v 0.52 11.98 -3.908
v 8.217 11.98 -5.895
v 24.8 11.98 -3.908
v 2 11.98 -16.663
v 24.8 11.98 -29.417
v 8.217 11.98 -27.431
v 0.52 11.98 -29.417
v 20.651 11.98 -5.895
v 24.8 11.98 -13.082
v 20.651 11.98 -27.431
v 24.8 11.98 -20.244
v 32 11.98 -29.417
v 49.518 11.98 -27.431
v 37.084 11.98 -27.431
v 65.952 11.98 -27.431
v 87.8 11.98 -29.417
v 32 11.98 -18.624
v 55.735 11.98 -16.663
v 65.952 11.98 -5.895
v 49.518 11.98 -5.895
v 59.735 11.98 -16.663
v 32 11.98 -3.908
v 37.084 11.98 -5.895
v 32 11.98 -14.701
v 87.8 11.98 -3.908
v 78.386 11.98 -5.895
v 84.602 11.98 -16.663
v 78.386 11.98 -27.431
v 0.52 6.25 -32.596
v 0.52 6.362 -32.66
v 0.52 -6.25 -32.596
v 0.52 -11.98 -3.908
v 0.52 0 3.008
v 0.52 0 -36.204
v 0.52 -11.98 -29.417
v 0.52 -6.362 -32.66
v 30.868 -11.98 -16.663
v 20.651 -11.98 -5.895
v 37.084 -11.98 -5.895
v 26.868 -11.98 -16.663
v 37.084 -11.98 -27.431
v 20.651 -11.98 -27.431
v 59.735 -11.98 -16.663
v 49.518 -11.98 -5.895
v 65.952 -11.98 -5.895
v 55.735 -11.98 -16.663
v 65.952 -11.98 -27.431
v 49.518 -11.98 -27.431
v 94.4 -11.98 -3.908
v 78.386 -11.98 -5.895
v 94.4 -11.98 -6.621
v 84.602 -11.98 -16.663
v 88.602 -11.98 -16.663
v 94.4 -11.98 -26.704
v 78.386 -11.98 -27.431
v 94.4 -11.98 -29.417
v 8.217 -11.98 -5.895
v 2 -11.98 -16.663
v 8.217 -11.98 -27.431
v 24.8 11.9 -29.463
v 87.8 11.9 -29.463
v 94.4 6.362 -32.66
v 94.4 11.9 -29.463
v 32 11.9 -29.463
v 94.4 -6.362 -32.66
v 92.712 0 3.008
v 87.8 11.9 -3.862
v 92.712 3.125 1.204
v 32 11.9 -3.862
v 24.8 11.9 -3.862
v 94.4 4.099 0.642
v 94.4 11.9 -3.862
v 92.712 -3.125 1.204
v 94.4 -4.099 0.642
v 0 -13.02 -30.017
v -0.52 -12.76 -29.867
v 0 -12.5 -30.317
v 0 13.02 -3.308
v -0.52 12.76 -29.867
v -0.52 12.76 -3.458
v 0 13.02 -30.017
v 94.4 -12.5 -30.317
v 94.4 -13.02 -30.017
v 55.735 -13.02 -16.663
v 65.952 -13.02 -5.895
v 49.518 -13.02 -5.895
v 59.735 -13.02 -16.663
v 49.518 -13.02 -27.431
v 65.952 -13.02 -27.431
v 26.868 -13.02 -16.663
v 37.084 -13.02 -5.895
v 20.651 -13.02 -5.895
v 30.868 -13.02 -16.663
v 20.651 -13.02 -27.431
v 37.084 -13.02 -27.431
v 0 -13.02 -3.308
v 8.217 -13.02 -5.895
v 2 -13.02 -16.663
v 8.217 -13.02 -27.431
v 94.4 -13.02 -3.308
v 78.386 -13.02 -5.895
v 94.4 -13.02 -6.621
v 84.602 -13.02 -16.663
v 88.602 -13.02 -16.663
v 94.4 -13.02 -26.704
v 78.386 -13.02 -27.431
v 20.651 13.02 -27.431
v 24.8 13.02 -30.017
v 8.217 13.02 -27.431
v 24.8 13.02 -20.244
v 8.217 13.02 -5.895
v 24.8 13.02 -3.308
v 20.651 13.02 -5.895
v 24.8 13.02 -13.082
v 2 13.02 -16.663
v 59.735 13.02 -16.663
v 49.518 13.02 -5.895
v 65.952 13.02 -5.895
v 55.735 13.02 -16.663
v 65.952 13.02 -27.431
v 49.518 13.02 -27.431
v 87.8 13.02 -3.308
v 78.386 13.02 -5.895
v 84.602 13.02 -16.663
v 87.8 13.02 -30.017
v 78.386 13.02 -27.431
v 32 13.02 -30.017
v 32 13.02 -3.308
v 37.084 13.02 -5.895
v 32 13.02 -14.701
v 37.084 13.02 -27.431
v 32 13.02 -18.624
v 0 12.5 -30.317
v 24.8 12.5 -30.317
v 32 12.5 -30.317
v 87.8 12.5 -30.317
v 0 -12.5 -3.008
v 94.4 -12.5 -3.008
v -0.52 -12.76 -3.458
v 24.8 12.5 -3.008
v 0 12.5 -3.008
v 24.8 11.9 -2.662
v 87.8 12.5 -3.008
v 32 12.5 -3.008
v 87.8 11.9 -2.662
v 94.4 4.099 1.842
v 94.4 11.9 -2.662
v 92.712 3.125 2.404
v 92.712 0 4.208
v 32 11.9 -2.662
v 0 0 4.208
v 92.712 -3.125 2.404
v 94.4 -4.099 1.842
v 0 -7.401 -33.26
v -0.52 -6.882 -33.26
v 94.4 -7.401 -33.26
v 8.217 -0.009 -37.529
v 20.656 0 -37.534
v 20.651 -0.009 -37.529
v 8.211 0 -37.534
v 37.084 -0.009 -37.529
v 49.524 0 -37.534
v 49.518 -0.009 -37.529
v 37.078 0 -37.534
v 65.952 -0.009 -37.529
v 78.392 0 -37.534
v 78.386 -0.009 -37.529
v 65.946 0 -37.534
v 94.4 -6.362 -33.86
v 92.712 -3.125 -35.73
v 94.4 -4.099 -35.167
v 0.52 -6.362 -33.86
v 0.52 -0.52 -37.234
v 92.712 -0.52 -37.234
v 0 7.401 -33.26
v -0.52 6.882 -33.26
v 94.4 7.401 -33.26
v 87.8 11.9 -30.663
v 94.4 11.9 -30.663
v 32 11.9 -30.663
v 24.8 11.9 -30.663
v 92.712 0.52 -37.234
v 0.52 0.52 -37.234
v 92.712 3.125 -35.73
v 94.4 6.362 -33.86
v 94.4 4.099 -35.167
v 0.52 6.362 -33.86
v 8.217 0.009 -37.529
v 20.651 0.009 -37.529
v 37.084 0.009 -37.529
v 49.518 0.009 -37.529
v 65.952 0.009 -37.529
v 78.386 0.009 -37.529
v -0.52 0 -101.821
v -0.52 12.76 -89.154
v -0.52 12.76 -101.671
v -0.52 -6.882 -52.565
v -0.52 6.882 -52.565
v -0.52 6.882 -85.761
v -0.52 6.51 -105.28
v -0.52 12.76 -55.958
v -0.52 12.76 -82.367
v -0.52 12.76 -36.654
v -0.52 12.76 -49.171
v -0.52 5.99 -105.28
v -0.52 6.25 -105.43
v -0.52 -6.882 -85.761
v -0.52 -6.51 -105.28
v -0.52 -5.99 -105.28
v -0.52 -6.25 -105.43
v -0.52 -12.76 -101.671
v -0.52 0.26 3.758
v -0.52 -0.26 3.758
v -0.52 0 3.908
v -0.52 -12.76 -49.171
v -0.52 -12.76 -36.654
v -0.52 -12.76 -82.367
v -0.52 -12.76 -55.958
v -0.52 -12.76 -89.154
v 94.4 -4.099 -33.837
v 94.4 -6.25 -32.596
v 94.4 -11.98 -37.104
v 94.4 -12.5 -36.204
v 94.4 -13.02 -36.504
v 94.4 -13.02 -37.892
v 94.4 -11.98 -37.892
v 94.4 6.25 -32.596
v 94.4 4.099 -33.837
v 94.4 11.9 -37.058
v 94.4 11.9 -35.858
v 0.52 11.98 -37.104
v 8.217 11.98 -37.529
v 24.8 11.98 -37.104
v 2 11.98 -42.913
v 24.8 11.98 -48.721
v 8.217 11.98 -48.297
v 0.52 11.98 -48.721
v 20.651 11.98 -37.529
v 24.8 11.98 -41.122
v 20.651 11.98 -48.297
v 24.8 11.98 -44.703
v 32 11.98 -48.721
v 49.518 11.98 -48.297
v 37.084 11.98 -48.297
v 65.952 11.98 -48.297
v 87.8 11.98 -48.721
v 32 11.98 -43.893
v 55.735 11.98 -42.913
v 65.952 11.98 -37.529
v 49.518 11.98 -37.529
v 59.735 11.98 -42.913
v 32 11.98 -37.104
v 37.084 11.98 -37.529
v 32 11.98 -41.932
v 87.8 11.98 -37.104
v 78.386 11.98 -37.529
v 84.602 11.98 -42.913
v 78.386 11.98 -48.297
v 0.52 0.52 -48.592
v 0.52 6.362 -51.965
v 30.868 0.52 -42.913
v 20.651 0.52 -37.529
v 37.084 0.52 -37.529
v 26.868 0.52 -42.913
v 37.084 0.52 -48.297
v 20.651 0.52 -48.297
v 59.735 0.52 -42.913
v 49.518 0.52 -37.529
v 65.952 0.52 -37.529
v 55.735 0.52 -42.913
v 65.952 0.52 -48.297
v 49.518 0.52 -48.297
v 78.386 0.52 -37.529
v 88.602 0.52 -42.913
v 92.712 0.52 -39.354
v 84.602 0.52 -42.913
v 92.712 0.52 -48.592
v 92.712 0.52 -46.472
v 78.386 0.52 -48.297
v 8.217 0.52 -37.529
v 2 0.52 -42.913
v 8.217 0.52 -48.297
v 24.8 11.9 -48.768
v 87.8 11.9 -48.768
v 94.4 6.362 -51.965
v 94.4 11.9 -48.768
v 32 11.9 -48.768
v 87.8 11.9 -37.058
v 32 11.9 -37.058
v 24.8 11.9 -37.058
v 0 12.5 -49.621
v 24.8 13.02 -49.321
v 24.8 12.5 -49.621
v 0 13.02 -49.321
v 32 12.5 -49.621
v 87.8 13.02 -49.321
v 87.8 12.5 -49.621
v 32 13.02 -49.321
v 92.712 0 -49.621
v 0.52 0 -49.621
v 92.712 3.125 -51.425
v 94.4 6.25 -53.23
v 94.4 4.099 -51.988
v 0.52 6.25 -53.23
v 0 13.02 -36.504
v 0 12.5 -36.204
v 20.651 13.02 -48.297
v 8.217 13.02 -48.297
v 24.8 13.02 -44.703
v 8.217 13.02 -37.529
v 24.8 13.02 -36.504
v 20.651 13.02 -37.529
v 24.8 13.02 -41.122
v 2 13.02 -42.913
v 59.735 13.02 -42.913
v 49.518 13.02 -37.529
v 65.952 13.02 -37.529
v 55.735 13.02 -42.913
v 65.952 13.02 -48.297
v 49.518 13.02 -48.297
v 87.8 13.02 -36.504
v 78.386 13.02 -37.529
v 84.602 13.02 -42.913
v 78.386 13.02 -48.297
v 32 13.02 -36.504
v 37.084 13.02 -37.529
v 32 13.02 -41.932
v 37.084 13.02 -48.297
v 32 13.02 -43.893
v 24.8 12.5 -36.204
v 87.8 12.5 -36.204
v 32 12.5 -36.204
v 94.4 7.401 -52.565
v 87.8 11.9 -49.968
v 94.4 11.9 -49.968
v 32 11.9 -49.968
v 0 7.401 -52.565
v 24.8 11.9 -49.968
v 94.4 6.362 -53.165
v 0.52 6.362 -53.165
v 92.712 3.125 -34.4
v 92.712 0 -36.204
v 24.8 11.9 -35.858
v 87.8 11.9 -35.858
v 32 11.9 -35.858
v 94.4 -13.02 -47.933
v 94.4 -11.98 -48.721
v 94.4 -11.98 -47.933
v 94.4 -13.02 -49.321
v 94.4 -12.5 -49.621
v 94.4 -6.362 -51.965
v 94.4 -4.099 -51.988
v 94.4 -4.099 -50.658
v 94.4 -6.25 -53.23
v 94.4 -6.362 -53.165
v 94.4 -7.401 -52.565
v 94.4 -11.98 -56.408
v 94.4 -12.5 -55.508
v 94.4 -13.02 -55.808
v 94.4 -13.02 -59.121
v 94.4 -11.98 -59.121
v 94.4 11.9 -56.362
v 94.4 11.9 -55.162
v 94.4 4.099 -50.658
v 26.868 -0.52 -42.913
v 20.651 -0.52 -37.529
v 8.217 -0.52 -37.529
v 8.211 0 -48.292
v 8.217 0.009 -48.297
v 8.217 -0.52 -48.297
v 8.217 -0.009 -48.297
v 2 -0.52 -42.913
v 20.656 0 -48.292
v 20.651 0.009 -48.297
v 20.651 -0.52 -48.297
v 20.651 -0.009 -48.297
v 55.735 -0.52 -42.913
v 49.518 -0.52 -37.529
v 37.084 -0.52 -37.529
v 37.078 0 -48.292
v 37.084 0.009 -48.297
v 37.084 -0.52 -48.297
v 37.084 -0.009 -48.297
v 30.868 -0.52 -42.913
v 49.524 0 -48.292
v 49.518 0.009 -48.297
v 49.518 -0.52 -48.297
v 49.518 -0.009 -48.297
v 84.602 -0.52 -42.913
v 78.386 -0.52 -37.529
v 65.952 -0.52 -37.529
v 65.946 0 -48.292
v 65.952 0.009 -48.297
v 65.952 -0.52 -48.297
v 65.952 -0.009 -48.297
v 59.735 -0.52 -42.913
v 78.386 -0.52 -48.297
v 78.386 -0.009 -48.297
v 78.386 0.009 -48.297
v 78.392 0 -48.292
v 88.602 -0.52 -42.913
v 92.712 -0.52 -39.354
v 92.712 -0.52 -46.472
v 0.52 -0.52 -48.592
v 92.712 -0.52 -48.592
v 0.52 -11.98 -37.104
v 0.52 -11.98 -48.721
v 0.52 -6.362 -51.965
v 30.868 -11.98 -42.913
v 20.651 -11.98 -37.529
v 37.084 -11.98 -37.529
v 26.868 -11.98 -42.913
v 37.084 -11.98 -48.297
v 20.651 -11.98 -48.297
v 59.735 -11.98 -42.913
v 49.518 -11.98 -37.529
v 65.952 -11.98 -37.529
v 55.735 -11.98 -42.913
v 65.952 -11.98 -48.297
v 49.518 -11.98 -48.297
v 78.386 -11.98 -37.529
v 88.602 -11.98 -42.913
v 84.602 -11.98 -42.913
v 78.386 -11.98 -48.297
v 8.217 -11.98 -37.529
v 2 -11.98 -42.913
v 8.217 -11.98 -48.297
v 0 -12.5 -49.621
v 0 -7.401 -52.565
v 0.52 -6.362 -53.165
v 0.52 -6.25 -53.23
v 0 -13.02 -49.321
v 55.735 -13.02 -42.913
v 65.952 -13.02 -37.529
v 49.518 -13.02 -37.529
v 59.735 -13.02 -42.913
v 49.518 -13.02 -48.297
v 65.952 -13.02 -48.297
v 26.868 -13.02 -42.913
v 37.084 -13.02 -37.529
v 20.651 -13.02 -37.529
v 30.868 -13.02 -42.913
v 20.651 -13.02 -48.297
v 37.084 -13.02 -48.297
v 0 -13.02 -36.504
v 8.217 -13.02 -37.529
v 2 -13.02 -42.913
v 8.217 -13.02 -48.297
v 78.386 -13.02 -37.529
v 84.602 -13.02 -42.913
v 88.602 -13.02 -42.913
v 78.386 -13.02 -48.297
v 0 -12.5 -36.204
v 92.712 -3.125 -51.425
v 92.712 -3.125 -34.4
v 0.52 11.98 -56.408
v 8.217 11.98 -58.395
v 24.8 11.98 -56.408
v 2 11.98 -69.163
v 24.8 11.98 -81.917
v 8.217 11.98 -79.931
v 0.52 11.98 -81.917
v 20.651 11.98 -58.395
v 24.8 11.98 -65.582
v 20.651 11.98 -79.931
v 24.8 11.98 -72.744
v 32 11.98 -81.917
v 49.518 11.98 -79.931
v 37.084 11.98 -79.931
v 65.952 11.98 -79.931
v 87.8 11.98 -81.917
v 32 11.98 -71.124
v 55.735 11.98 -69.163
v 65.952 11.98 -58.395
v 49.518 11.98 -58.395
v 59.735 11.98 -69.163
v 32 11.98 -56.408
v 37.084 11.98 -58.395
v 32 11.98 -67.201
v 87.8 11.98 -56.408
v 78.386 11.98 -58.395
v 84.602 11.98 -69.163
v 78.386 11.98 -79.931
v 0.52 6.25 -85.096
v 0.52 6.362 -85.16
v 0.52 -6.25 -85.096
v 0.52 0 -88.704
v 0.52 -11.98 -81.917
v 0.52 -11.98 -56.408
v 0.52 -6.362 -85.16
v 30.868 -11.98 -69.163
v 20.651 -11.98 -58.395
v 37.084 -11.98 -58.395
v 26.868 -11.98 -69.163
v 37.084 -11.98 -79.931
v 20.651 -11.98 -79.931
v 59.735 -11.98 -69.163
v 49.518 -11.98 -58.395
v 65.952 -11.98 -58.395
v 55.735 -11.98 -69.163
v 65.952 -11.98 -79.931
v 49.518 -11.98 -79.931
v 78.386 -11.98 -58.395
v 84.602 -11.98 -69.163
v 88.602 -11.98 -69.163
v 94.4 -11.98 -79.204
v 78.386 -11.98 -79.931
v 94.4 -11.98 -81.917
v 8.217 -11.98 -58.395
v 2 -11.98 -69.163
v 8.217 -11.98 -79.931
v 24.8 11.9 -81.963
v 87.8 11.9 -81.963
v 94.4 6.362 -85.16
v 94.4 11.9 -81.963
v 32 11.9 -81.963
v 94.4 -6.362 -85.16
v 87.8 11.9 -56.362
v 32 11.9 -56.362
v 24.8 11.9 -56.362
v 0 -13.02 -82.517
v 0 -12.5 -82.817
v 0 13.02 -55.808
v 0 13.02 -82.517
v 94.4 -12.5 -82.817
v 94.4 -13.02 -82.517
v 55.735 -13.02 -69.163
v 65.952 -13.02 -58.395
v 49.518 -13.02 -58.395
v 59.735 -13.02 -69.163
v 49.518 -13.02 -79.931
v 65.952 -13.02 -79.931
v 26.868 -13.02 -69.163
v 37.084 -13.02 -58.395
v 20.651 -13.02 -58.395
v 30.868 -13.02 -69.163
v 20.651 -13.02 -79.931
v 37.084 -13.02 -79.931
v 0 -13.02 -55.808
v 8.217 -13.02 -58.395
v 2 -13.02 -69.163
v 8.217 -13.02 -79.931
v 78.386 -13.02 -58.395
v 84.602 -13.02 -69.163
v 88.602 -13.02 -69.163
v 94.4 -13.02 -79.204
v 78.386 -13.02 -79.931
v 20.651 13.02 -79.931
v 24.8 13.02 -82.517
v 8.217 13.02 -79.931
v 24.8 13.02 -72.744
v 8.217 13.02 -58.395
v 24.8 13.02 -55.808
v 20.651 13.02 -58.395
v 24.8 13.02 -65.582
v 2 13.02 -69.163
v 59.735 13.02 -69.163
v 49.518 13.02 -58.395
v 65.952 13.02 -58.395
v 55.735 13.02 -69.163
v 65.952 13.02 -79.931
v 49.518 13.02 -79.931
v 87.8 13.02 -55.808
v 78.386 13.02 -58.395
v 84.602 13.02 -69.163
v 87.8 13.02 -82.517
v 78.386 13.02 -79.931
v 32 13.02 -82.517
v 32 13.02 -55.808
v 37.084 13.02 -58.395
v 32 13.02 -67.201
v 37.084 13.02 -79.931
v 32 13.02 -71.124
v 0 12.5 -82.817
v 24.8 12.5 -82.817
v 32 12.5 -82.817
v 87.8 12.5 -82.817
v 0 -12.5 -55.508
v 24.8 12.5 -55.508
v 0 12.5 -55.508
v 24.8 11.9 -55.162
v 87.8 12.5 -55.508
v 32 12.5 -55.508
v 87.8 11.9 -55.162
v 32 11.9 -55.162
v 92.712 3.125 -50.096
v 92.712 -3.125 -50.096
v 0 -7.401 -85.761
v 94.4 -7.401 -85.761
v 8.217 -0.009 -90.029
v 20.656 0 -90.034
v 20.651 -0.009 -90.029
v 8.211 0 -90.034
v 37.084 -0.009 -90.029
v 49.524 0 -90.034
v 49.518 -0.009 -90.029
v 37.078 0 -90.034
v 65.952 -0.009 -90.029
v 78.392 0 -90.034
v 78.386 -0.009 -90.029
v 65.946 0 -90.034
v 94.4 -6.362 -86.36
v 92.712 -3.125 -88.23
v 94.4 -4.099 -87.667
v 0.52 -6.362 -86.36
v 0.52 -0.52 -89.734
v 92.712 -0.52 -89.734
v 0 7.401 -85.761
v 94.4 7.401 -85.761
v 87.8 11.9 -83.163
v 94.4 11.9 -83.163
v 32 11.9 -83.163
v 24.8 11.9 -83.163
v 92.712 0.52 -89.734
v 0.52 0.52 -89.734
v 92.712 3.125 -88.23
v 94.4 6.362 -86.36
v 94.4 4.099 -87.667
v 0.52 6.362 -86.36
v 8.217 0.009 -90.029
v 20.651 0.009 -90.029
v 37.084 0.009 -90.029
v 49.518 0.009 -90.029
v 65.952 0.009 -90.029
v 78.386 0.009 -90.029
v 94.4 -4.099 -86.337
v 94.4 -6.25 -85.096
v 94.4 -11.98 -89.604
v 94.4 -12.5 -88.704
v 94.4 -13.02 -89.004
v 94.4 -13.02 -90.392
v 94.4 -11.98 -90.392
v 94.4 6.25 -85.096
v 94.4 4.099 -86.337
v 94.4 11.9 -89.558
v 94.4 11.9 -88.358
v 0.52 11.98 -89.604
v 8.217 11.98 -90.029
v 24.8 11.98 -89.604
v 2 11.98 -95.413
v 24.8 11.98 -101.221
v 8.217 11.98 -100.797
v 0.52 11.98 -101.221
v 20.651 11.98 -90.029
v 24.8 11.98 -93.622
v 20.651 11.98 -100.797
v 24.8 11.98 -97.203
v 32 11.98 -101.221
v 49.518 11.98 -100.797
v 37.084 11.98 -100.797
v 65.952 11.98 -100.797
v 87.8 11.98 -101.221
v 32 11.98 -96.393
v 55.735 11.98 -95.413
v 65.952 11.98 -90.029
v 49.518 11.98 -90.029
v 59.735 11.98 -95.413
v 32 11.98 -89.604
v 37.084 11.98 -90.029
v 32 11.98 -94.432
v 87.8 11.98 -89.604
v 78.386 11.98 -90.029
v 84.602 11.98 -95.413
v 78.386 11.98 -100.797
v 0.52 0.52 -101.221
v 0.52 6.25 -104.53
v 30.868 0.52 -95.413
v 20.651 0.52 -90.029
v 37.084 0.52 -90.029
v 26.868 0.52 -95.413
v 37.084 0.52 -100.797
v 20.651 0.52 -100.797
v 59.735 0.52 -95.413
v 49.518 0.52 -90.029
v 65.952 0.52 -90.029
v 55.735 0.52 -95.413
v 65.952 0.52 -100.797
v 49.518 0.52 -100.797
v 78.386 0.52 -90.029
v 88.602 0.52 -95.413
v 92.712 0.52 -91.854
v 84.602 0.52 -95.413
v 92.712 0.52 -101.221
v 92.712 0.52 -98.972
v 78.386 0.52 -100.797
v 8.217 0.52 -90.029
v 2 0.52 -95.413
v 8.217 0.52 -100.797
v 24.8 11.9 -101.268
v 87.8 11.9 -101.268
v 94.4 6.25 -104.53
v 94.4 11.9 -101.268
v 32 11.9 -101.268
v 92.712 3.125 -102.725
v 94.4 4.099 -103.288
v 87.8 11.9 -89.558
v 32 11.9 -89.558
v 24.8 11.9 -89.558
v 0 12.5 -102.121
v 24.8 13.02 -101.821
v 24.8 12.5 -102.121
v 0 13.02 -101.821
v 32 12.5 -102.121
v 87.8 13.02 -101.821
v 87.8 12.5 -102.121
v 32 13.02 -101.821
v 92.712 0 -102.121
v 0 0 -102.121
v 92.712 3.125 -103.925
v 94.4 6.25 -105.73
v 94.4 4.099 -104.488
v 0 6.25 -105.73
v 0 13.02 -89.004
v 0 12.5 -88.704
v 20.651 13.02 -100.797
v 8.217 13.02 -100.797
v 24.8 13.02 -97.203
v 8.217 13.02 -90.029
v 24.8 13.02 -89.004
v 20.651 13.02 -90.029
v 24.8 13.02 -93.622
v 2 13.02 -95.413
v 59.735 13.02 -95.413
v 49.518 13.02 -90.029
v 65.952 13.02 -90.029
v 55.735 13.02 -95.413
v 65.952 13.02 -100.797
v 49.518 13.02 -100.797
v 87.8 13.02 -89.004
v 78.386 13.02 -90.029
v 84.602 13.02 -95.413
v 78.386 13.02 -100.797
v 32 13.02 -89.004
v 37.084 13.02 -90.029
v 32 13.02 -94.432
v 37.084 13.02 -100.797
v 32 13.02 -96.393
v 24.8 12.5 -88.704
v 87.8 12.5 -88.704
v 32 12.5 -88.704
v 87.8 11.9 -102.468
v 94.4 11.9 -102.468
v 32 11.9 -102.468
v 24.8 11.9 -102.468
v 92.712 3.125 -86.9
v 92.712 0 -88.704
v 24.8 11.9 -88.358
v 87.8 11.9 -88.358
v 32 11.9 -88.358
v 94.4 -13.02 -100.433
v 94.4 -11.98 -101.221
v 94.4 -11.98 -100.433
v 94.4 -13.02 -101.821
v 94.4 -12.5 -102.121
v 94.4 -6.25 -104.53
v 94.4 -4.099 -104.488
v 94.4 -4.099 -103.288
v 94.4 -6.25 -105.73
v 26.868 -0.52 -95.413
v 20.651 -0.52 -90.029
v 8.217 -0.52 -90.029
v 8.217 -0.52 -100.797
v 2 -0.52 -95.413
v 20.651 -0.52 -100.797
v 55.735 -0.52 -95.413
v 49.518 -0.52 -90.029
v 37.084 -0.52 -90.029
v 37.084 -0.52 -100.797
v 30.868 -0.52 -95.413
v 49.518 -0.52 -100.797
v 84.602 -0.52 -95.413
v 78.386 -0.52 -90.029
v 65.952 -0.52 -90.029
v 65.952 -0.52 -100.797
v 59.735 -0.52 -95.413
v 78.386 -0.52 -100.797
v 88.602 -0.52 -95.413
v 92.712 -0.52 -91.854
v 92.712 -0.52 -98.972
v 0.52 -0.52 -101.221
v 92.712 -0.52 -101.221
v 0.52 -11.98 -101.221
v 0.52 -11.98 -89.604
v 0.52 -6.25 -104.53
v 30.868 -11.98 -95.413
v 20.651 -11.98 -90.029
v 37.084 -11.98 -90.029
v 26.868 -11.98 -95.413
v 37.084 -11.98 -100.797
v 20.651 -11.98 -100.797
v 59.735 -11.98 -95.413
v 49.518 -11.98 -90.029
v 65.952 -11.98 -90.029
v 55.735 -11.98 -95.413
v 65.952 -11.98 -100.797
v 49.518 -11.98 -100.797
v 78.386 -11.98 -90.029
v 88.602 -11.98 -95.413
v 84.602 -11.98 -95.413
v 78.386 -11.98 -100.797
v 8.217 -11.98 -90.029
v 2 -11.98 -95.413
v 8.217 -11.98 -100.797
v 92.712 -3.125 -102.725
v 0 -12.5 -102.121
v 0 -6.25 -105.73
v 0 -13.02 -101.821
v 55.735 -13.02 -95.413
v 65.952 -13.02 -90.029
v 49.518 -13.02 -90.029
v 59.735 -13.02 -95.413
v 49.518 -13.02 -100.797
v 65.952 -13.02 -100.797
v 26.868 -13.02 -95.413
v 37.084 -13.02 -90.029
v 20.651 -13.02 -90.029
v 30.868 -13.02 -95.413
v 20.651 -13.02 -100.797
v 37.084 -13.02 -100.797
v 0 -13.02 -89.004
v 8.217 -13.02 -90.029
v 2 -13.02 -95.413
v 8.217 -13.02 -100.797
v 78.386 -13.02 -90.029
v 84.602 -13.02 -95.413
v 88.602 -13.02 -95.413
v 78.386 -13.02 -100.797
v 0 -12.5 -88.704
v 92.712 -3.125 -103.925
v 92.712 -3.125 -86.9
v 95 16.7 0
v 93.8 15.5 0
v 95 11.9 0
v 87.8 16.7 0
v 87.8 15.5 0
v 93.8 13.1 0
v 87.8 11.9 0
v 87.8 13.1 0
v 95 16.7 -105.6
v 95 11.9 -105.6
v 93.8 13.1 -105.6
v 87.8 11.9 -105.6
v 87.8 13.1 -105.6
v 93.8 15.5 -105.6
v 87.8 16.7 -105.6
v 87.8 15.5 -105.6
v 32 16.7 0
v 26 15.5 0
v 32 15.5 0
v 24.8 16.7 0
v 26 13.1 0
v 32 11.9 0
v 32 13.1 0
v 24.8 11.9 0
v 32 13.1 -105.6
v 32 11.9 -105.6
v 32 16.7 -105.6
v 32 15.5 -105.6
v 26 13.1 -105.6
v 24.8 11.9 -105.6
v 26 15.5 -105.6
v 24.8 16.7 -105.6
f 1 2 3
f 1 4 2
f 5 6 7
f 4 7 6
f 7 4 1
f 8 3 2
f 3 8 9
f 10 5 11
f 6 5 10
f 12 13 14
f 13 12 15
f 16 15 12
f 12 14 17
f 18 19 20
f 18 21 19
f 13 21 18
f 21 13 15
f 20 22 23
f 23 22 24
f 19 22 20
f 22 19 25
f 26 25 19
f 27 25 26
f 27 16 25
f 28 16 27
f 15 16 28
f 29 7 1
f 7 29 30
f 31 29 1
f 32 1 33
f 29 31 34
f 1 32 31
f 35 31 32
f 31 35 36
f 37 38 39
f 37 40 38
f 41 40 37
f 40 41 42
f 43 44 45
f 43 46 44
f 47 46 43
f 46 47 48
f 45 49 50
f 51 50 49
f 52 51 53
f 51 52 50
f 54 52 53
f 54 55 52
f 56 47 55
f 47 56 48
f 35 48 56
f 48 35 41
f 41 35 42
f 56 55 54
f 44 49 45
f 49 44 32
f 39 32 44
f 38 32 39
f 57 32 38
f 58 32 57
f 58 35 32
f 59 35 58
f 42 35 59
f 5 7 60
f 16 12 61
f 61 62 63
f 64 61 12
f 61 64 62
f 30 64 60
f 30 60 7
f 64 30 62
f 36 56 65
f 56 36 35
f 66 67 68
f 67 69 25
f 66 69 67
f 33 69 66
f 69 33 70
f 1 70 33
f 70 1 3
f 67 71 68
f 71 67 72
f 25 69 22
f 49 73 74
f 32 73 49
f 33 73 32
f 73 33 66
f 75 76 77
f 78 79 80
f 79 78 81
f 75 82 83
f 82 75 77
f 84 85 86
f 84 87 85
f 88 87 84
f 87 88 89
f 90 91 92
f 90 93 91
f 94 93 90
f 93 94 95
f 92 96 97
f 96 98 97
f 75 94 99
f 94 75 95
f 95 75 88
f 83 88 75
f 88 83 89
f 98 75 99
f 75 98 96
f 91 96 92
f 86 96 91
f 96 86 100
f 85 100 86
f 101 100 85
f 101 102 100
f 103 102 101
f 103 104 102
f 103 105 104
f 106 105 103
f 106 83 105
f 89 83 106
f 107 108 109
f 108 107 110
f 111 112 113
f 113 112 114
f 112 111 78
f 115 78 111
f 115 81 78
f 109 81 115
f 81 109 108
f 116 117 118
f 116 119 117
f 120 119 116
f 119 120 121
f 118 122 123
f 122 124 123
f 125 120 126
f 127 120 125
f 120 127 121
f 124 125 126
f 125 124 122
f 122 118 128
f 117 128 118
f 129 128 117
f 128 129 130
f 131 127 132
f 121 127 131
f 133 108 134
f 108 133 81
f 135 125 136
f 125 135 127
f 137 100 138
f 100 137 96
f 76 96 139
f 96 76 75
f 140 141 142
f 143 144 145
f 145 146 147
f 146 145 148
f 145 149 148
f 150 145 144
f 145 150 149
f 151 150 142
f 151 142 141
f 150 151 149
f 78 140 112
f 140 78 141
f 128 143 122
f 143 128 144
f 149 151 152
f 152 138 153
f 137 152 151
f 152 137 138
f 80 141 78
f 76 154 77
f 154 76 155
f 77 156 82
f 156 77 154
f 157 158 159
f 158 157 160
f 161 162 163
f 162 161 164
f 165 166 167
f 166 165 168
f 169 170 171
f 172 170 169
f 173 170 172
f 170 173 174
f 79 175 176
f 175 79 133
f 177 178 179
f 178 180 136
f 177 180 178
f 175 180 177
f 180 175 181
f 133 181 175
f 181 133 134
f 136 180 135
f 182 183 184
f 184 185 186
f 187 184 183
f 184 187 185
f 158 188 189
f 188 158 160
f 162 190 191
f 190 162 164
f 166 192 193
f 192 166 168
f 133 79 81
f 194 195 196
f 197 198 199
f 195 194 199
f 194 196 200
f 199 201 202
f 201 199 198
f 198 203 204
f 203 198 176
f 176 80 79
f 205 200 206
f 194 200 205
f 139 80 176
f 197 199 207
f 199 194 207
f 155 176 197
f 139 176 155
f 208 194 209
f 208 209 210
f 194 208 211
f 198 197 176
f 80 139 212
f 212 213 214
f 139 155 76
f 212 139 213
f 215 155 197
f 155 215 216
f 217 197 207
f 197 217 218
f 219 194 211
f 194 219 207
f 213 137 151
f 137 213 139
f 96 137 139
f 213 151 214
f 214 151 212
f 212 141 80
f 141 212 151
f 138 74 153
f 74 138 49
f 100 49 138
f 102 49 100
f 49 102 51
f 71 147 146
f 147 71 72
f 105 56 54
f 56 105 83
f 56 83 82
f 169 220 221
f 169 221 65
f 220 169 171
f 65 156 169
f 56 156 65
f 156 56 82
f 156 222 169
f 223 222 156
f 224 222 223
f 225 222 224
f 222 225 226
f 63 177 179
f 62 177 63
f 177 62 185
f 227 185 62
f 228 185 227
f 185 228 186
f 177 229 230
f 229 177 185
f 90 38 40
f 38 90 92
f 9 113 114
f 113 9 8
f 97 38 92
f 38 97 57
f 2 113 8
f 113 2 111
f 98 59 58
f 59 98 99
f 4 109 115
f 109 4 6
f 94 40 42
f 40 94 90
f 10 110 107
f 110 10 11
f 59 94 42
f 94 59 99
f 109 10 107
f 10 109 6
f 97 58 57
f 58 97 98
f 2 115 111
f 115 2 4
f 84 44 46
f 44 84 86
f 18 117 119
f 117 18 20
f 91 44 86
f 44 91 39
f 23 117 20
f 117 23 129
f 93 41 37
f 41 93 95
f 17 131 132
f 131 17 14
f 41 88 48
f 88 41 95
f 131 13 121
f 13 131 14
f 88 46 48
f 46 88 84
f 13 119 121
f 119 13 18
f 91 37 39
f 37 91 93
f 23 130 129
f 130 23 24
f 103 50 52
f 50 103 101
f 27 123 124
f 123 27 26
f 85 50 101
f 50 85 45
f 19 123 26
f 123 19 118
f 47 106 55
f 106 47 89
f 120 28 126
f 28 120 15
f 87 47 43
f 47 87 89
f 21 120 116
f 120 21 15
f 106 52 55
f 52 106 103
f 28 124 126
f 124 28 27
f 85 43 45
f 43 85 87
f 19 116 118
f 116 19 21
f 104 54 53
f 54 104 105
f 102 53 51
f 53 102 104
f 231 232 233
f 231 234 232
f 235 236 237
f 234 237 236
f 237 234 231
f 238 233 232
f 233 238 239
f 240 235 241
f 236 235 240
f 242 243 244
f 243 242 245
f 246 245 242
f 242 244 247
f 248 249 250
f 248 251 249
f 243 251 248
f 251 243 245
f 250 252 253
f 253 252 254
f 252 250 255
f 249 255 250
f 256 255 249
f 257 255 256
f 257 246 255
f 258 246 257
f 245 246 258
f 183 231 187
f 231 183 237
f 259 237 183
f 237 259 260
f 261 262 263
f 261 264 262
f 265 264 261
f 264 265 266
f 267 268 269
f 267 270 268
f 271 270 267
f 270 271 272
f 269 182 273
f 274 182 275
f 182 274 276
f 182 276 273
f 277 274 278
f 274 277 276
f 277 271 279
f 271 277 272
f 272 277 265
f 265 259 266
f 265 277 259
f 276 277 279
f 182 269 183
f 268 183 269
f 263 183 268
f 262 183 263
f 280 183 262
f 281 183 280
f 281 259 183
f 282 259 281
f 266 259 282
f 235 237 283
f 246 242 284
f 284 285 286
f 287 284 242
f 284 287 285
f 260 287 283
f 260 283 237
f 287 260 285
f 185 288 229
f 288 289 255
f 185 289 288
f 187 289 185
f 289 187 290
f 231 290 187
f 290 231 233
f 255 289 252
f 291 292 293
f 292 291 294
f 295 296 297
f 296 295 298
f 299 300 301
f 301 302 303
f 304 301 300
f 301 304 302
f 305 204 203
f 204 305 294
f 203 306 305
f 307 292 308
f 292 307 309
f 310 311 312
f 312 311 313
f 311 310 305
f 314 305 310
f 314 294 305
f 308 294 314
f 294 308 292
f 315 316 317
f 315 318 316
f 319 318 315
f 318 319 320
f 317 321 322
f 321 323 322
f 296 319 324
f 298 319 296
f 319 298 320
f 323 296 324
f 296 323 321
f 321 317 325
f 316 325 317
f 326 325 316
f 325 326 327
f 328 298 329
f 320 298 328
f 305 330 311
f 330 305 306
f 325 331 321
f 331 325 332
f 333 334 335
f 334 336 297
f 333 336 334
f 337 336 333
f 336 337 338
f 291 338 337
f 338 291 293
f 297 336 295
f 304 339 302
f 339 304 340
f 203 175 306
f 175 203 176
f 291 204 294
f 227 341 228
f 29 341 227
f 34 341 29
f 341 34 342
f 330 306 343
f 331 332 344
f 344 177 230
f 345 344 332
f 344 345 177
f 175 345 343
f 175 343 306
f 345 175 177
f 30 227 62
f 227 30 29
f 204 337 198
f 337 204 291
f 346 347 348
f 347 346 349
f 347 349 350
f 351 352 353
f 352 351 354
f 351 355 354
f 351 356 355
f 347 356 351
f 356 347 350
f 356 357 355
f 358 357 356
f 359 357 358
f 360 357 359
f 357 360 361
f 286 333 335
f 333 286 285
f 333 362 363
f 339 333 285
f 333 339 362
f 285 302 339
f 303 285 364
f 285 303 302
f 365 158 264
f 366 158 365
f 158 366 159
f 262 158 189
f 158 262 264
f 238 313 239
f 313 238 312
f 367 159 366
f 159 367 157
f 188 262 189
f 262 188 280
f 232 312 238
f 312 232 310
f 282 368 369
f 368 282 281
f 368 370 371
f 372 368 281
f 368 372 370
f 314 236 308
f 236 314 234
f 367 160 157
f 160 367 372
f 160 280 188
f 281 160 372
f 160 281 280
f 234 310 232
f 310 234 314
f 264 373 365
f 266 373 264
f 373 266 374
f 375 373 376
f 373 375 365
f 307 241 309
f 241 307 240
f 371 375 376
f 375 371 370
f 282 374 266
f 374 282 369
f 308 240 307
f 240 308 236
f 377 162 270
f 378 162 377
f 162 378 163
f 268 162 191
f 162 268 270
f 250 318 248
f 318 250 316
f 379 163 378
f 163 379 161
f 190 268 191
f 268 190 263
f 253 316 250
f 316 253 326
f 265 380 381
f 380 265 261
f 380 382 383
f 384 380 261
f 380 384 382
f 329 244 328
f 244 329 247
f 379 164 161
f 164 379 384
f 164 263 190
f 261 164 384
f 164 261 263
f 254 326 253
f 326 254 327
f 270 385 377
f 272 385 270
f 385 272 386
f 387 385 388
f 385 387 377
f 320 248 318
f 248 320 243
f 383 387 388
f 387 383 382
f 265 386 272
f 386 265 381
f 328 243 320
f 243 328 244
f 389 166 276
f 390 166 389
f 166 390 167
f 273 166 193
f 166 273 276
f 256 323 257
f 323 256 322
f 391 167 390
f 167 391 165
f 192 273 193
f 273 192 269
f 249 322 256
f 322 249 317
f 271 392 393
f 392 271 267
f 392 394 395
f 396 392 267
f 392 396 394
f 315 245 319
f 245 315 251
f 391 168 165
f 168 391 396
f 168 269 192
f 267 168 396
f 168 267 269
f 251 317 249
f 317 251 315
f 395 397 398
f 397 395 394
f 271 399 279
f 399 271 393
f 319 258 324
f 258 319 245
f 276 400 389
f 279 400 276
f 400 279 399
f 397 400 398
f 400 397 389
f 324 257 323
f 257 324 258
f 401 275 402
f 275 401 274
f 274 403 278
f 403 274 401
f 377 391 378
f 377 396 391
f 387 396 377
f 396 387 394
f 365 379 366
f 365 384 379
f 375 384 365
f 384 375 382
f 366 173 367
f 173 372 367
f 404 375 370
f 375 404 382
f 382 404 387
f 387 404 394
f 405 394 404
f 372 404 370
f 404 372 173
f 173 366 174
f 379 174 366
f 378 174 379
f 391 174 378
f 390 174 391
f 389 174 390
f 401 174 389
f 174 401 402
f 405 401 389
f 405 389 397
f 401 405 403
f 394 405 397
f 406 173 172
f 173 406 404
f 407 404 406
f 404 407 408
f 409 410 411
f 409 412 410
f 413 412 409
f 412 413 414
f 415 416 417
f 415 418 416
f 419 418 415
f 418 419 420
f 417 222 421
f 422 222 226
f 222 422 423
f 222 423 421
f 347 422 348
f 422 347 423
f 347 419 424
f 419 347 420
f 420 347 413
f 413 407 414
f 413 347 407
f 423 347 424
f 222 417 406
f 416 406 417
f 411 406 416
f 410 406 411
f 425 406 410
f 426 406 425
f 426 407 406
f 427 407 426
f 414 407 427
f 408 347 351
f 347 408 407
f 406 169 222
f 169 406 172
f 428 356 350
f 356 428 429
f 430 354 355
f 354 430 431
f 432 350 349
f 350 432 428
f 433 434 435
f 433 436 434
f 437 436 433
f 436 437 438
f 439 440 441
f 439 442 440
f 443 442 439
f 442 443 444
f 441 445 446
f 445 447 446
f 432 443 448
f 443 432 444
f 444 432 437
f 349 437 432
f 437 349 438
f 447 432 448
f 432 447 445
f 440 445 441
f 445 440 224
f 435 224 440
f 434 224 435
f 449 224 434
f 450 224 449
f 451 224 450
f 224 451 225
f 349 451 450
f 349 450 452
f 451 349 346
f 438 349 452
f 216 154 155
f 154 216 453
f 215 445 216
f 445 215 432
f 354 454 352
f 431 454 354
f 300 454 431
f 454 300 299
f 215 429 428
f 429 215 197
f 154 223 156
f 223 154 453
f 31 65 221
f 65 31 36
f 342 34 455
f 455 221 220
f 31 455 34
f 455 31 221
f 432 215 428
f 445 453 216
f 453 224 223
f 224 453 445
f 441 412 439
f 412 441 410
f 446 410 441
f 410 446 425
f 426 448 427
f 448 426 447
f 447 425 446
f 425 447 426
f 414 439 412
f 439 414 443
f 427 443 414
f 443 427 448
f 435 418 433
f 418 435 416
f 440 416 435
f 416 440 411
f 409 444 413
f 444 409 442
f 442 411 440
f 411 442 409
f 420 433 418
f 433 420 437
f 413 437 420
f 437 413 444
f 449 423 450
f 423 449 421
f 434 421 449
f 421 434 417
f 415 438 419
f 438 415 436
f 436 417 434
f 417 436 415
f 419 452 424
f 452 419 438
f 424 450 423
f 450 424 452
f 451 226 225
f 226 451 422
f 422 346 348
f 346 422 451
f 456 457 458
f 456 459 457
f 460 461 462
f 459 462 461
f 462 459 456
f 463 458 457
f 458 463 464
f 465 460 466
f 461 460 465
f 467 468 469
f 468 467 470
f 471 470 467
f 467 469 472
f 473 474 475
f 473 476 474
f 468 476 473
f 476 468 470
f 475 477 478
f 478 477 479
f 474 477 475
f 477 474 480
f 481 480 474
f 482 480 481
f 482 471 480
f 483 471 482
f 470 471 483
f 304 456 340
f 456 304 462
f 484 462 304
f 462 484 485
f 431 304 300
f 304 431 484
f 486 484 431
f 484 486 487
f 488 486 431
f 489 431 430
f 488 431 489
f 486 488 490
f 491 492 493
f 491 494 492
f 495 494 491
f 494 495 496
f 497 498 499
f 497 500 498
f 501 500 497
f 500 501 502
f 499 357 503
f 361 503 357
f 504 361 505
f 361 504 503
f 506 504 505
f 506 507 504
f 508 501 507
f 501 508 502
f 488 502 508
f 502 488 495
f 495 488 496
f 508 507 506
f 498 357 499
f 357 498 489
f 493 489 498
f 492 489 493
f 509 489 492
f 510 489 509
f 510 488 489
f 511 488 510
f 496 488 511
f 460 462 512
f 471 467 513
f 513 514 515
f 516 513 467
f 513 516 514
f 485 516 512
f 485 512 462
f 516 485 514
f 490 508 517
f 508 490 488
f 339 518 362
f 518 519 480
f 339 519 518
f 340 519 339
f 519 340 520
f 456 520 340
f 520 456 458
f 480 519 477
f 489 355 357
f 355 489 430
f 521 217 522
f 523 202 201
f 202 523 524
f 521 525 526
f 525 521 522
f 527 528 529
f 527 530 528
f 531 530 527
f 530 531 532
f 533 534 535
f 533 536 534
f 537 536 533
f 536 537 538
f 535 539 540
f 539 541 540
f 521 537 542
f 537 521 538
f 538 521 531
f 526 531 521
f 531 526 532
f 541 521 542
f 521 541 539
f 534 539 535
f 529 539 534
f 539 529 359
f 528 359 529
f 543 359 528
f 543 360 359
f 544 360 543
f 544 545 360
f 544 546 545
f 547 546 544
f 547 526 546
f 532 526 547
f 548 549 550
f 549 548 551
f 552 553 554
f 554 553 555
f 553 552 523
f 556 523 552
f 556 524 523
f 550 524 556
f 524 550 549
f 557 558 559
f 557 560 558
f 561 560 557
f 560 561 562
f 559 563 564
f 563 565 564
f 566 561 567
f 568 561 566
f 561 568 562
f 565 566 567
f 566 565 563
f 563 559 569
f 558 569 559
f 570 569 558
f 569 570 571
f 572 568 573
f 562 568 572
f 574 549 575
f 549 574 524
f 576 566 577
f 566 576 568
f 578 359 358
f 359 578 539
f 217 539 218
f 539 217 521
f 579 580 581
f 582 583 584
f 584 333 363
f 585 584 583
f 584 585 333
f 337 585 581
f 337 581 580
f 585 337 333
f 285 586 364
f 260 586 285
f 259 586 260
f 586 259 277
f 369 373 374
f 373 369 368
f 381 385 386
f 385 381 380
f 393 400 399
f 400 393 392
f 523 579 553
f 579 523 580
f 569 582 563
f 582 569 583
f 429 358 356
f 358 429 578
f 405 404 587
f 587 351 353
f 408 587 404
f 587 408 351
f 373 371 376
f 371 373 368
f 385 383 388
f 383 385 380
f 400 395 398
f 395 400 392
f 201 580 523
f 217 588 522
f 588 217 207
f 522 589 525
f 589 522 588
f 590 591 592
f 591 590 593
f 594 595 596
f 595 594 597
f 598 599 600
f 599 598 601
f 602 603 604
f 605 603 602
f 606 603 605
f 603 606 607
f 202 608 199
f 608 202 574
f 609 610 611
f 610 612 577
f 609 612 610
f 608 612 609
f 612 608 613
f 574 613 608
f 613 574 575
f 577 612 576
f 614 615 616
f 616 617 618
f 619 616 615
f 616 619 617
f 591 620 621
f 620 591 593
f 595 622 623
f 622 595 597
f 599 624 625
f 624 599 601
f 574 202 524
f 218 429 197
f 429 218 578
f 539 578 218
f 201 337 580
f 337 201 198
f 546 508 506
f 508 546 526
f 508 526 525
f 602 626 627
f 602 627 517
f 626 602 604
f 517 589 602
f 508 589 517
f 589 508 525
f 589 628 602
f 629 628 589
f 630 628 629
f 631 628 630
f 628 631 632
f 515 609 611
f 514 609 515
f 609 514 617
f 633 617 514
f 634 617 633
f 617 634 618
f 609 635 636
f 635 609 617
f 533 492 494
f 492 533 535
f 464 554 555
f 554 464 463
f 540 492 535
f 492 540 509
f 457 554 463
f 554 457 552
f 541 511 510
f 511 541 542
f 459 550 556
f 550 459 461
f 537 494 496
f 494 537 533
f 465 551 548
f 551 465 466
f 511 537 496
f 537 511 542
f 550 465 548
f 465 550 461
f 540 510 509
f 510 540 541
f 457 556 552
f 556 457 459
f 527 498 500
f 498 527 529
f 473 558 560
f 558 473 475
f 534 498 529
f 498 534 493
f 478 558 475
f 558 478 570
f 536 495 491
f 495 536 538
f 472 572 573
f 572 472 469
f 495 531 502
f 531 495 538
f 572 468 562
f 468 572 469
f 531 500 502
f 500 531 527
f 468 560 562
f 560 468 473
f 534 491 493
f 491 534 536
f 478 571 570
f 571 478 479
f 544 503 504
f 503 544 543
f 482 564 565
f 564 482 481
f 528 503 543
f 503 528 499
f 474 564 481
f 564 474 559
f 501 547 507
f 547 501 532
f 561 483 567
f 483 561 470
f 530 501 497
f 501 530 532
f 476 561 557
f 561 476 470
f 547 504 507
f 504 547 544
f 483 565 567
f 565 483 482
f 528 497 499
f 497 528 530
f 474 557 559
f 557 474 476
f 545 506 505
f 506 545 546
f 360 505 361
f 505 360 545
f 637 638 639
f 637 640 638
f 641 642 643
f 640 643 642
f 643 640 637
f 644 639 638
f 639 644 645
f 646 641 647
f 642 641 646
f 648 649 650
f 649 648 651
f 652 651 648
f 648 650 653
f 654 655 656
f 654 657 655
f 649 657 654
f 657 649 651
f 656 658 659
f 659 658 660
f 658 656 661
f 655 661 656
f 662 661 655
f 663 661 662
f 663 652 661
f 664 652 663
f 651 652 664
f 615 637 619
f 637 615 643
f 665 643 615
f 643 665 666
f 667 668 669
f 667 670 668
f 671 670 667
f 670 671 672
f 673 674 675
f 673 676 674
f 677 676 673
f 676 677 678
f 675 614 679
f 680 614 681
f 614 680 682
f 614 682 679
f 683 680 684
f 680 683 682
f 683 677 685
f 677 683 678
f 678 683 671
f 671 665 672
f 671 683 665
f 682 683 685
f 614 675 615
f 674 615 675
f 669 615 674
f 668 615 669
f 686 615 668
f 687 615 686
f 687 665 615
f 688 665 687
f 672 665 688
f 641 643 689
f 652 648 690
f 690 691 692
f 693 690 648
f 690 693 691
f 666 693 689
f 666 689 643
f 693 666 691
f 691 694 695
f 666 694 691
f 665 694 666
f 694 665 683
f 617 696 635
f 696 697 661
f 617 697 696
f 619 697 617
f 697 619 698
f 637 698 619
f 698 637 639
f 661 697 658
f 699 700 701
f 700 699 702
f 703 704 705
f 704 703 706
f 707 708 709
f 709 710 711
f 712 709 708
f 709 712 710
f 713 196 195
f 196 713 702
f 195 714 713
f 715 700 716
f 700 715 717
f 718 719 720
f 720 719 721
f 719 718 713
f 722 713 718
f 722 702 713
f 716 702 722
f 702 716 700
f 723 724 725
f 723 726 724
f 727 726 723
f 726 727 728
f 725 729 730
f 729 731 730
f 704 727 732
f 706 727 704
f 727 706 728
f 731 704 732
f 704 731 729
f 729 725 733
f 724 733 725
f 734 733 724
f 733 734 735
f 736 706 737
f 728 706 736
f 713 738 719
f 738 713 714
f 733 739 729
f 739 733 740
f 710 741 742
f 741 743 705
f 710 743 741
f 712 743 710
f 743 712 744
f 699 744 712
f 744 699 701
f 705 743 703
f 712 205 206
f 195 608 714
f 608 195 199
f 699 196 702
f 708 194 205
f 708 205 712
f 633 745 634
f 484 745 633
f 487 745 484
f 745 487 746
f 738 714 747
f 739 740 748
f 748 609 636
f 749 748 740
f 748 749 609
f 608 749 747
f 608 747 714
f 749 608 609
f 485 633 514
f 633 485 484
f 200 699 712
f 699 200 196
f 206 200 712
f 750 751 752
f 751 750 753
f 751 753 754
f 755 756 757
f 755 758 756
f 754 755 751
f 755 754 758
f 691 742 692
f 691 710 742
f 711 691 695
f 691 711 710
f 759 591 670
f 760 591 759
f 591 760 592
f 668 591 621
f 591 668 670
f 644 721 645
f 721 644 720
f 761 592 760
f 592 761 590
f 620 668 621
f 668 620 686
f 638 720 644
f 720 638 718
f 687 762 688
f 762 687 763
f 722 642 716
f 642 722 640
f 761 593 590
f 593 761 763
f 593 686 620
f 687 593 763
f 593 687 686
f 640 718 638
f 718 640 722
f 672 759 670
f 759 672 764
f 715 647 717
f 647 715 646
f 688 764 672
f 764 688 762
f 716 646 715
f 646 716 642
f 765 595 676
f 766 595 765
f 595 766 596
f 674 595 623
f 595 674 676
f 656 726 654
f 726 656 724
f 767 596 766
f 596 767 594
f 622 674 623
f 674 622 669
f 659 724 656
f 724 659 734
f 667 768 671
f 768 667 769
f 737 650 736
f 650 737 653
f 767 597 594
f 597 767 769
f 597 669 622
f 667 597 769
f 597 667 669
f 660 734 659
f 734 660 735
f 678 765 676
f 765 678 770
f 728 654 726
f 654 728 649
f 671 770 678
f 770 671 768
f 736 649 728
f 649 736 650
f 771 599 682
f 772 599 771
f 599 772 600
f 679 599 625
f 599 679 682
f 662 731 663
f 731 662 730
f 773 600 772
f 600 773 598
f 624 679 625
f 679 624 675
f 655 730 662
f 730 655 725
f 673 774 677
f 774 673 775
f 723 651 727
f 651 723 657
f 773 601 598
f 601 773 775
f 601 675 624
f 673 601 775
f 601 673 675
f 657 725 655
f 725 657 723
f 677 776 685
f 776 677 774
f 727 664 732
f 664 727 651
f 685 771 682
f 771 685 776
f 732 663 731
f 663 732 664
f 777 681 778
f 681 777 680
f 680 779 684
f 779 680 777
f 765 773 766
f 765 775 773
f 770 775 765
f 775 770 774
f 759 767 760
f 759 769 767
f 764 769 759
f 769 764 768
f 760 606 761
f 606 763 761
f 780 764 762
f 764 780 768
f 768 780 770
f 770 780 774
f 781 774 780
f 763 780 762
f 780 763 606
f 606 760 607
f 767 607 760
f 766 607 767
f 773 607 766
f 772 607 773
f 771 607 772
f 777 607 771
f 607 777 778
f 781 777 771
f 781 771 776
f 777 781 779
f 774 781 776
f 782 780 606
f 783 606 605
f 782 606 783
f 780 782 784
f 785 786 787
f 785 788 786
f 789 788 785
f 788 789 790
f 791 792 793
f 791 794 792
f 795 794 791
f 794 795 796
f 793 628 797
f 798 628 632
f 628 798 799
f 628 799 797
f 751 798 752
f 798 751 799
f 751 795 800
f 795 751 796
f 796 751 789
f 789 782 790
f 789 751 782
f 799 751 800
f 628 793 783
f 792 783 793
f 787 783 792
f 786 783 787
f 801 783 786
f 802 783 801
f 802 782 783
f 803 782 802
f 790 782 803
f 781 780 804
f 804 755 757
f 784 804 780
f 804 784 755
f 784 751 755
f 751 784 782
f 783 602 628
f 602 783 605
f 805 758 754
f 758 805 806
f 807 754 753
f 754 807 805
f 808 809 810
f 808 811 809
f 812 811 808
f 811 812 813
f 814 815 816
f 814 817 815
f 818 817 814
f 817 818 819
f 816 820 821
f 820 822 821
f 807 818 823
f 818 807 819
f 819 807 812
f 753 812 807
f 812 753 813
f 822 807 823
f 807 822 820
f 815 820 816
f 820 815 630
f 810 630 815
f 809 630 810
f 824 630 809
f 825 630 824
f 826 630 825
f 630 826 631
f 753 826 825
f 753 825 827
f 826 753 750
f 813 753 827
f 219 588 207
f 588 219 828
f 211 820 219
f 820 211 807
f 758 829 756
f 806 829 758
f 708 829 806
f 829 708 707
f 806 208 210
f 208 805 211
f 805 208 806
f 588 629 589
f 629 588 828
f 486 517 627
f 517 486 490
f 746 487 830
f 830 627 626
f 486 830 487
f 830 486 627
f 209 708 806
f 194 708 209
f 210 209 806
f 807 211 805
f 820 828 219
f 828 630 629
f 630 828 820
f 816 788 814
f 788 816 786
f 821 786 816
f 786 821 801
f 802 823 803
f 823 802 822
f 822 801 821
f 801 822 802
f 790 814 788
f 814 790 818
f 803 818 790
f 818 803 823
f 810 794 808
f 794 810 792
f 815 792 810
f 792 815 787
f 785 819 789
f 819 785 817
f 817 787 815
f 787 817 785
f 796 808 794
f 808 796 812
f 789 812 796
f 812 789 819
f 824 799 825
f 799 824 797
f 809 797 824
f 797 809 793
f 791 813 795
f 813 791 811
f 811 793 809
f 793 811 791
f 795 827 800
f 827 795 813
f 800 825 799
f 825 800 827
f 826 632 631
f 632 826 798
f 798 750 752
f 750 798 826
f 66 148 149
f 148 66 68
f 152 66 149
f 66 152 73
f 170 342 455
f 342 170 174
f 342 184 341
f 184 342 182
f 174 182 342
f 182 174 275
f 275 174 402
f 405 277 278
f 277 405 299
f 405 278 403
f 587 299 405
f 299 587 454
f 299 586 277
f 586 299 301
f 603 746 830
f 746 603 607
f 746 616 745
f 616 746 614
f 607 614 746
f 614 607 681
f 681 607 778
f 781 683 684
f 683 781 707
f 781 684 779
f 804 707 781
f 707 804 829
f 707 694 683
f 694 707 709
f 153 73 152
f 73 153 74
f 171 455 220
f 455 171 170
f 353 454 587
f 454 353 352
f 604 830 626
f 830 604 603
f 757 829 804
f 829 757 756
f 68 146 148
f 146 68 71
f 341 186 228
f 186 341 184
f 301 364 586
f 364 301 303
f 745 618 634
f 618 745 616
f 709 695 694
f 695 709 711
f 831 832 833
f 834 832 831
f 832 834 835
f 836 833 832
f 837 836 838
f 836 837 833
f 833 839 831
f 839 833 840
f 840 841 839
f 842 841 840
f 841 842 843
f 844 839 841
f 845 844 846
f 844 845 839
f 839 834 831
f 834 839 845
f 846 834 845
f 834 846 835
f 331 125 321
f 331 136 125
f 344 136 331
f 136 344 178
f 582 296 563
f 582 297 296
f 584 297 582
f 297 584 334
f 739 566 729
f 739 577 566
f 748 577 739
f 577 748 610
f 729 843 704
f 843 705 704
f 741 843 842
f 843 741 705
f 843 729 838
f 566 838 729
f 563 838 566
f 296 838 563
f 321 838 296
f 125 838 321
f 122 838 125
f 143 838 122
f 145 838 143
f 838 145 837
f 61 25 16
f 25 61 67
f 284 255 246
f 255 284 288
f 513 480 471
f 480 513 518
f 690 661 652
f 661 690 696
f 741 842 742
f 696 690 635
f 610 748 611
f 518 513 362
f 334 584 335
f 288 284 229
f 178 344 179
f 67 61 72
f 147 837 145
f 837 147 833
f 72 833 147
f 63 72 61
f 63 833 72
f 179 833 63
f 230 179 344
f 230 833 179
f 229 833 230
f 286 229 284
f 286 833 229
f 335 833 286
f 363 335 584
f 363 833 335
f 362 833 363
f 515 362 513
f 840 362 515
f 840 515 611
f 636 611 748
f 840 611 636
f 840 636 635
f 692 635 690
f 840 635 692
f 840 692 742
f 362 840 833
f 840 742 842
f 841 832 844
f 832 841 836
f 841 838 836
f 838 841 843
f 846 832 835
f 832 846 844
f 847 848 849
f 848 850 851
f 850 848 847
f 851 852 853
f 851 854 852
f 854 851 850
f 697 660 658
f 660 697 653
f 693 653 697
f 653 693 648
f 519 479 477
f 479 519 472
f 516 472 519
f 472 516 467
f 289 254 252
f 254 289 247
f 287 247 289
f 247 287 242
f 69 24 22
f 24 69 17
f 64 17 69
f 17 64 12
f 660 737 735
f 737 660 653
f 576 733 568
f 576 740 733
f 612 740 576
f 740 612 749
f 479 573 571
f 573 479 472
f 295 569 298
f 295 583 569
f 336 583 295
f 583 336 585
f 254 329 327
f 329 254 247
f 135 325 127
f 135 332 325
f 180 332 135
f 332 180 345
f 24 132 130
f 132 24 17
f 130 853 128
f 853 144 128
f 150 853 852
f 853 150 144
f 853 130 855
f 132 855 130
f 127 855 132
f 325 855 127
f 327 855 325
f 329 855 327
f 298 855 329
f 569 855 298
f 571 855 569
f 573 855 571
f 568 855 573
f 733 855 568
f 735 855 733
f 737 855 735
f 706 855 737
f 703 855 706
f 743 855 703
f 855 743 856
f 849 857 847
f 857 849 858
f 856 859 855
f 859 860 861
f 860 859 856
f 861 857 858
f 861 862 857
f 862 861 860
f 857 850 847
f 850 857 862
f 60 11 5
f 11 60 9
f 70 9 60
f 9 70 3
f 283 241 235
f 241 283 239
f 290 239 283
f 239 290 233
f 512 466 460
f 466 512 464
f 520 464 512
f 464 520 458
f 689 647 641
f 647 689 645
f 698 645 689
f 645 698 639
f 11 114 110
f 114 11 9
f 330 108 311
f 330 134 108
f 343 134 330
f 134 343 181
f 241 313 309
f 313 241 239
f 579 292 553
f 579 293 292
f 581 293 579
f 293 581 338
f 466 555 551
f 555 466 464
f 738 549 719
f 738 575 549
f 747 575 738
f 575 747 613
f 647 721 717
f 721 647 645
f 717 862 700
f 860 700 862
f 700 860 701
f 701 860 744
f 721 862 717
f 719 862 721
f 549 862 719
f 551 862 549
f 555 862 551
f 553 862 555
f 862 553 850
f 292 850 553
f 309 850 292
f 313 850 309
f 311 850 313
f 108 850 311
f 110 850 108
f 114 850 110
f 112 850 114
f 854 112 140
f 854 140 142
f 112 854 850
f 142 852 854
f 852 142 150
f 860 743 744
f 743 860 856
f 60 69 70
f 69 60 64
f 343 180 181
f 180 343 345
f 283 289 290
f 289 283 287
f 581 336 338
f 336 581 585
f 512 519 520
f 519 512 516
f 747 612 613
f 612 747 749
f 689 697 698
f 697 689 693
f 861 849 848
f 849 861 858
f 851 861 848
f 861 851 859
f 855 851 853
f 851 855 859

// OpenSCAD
WALL = .6*2;
INF = 1000;


MODULE_WIDTH = 25;
MODULE_LENGTH = 35;
MODULE_HEIGHT = 95;

module skin() {
    thickness = WALL;
    intersection() {
        minkowski() {
            difference() {
                cube(INF, center=true);
                children();
            }
            sphere(d=thickness, $fn=6);
        }
        minkowski() {
            children();
            sphere(d=thickness, $fn=6);
        }
    }
}

module shave_top(h) {
    difference() {
        children();
        translate([0, 0, INF/2 + h])
        cube(INF, center=true);
    }
}


module any(k, m) {
    d = MODULE_WIDTH * sqrt(4/3) *k;
    d2 = MODULE_WIDTH * cos(30)/2 *k;
    shift = (MODULE_LENGTH-MODULE_WIDTH)*k + (MODULE_WIDTH/2-d2)*m;
    translate([d2, 0, 0])
    difference() {
        shave_top(MODULE_HEIGHT-WALL/2) skin() 
        union() {
            cylinder(d=d, h=MODULE_HEIGHT, $fn=6);
            translate([shift, 0, 0])
            cylinder(d=d, h=MODULE_HEIGHT, $fn=6);
        }

        margin = 2;
        d3 = d/k-margin*2;
        d4 = d3 + margin*2;
        for (i=[0:floor(MODULE_HEIGHT/d4)]) {
            translate([shift/2, MODULE_WIDTH, d3/2 + margin + i*d4])
            scale([k, 1, 1])
            rotate([90, 0, 0])
            rotate([0, 0, 90])
            cylinder(d=d3, h=MODULE_WIDTH*2, $fn=6);
        }
    }
}

module big() {
    any(1, 1);
}

module small() {
    any(1/2, 0);
}

module compound() {
    big();

    translate([MODULE_LENGTH, MODULE_WIDTH/4, 0]) small();
    translate([MODULE_LENGTH, -MODULE_WIDTH/4, 0]) small();
}

N = 2;

module u(inv=false) {
    difference() {
        cube([MODULE_LENGTH*1.5*N + WALL/2, WALL*4, WALL*6]);
        translate([0, WALL, inv ? WALL : 0])
        cube([MODULE_LENGTH*1.5*N + WALL/2, WALL*2, WALL*5]);
    }
}

module all() {
    rotate([0, 90, 0]) {
        difference() {
            union() {
                for (i=[0:N-1]) {
                    translate([MODULE_LENGTH*1.5*i, 0, 0])
                    compound();
                }
            }
            
            r = MODULE_WIDTH/4;
            translate([-MODULE_LENGTH/2, 0, MODULE_HEIGHT+r/2])
            rotate([0, 90, 0])
            rotate([0, 0, 90])
            cylinder(r=r, h=MODULE_LENGTH*1.5*N*2, $fn=6);
        }
        translate([0, MODULE_WIDTH/2 -WALL/2, MODULE_HEIGHT-WALL*6]) u();
        translate([0, MODULE_WIDTH/2 -WALL/2, MODULE_HEIGHT-WALL*6 - 63]) u(true);
    }
}

/*
intersection() {
    rotate([0, -90, 0]) 
    all();

    translate([0, 0, 29])
cube([MODULE_HEIGHT*10, 30, 2.2], center=true);
}
*/
all();
